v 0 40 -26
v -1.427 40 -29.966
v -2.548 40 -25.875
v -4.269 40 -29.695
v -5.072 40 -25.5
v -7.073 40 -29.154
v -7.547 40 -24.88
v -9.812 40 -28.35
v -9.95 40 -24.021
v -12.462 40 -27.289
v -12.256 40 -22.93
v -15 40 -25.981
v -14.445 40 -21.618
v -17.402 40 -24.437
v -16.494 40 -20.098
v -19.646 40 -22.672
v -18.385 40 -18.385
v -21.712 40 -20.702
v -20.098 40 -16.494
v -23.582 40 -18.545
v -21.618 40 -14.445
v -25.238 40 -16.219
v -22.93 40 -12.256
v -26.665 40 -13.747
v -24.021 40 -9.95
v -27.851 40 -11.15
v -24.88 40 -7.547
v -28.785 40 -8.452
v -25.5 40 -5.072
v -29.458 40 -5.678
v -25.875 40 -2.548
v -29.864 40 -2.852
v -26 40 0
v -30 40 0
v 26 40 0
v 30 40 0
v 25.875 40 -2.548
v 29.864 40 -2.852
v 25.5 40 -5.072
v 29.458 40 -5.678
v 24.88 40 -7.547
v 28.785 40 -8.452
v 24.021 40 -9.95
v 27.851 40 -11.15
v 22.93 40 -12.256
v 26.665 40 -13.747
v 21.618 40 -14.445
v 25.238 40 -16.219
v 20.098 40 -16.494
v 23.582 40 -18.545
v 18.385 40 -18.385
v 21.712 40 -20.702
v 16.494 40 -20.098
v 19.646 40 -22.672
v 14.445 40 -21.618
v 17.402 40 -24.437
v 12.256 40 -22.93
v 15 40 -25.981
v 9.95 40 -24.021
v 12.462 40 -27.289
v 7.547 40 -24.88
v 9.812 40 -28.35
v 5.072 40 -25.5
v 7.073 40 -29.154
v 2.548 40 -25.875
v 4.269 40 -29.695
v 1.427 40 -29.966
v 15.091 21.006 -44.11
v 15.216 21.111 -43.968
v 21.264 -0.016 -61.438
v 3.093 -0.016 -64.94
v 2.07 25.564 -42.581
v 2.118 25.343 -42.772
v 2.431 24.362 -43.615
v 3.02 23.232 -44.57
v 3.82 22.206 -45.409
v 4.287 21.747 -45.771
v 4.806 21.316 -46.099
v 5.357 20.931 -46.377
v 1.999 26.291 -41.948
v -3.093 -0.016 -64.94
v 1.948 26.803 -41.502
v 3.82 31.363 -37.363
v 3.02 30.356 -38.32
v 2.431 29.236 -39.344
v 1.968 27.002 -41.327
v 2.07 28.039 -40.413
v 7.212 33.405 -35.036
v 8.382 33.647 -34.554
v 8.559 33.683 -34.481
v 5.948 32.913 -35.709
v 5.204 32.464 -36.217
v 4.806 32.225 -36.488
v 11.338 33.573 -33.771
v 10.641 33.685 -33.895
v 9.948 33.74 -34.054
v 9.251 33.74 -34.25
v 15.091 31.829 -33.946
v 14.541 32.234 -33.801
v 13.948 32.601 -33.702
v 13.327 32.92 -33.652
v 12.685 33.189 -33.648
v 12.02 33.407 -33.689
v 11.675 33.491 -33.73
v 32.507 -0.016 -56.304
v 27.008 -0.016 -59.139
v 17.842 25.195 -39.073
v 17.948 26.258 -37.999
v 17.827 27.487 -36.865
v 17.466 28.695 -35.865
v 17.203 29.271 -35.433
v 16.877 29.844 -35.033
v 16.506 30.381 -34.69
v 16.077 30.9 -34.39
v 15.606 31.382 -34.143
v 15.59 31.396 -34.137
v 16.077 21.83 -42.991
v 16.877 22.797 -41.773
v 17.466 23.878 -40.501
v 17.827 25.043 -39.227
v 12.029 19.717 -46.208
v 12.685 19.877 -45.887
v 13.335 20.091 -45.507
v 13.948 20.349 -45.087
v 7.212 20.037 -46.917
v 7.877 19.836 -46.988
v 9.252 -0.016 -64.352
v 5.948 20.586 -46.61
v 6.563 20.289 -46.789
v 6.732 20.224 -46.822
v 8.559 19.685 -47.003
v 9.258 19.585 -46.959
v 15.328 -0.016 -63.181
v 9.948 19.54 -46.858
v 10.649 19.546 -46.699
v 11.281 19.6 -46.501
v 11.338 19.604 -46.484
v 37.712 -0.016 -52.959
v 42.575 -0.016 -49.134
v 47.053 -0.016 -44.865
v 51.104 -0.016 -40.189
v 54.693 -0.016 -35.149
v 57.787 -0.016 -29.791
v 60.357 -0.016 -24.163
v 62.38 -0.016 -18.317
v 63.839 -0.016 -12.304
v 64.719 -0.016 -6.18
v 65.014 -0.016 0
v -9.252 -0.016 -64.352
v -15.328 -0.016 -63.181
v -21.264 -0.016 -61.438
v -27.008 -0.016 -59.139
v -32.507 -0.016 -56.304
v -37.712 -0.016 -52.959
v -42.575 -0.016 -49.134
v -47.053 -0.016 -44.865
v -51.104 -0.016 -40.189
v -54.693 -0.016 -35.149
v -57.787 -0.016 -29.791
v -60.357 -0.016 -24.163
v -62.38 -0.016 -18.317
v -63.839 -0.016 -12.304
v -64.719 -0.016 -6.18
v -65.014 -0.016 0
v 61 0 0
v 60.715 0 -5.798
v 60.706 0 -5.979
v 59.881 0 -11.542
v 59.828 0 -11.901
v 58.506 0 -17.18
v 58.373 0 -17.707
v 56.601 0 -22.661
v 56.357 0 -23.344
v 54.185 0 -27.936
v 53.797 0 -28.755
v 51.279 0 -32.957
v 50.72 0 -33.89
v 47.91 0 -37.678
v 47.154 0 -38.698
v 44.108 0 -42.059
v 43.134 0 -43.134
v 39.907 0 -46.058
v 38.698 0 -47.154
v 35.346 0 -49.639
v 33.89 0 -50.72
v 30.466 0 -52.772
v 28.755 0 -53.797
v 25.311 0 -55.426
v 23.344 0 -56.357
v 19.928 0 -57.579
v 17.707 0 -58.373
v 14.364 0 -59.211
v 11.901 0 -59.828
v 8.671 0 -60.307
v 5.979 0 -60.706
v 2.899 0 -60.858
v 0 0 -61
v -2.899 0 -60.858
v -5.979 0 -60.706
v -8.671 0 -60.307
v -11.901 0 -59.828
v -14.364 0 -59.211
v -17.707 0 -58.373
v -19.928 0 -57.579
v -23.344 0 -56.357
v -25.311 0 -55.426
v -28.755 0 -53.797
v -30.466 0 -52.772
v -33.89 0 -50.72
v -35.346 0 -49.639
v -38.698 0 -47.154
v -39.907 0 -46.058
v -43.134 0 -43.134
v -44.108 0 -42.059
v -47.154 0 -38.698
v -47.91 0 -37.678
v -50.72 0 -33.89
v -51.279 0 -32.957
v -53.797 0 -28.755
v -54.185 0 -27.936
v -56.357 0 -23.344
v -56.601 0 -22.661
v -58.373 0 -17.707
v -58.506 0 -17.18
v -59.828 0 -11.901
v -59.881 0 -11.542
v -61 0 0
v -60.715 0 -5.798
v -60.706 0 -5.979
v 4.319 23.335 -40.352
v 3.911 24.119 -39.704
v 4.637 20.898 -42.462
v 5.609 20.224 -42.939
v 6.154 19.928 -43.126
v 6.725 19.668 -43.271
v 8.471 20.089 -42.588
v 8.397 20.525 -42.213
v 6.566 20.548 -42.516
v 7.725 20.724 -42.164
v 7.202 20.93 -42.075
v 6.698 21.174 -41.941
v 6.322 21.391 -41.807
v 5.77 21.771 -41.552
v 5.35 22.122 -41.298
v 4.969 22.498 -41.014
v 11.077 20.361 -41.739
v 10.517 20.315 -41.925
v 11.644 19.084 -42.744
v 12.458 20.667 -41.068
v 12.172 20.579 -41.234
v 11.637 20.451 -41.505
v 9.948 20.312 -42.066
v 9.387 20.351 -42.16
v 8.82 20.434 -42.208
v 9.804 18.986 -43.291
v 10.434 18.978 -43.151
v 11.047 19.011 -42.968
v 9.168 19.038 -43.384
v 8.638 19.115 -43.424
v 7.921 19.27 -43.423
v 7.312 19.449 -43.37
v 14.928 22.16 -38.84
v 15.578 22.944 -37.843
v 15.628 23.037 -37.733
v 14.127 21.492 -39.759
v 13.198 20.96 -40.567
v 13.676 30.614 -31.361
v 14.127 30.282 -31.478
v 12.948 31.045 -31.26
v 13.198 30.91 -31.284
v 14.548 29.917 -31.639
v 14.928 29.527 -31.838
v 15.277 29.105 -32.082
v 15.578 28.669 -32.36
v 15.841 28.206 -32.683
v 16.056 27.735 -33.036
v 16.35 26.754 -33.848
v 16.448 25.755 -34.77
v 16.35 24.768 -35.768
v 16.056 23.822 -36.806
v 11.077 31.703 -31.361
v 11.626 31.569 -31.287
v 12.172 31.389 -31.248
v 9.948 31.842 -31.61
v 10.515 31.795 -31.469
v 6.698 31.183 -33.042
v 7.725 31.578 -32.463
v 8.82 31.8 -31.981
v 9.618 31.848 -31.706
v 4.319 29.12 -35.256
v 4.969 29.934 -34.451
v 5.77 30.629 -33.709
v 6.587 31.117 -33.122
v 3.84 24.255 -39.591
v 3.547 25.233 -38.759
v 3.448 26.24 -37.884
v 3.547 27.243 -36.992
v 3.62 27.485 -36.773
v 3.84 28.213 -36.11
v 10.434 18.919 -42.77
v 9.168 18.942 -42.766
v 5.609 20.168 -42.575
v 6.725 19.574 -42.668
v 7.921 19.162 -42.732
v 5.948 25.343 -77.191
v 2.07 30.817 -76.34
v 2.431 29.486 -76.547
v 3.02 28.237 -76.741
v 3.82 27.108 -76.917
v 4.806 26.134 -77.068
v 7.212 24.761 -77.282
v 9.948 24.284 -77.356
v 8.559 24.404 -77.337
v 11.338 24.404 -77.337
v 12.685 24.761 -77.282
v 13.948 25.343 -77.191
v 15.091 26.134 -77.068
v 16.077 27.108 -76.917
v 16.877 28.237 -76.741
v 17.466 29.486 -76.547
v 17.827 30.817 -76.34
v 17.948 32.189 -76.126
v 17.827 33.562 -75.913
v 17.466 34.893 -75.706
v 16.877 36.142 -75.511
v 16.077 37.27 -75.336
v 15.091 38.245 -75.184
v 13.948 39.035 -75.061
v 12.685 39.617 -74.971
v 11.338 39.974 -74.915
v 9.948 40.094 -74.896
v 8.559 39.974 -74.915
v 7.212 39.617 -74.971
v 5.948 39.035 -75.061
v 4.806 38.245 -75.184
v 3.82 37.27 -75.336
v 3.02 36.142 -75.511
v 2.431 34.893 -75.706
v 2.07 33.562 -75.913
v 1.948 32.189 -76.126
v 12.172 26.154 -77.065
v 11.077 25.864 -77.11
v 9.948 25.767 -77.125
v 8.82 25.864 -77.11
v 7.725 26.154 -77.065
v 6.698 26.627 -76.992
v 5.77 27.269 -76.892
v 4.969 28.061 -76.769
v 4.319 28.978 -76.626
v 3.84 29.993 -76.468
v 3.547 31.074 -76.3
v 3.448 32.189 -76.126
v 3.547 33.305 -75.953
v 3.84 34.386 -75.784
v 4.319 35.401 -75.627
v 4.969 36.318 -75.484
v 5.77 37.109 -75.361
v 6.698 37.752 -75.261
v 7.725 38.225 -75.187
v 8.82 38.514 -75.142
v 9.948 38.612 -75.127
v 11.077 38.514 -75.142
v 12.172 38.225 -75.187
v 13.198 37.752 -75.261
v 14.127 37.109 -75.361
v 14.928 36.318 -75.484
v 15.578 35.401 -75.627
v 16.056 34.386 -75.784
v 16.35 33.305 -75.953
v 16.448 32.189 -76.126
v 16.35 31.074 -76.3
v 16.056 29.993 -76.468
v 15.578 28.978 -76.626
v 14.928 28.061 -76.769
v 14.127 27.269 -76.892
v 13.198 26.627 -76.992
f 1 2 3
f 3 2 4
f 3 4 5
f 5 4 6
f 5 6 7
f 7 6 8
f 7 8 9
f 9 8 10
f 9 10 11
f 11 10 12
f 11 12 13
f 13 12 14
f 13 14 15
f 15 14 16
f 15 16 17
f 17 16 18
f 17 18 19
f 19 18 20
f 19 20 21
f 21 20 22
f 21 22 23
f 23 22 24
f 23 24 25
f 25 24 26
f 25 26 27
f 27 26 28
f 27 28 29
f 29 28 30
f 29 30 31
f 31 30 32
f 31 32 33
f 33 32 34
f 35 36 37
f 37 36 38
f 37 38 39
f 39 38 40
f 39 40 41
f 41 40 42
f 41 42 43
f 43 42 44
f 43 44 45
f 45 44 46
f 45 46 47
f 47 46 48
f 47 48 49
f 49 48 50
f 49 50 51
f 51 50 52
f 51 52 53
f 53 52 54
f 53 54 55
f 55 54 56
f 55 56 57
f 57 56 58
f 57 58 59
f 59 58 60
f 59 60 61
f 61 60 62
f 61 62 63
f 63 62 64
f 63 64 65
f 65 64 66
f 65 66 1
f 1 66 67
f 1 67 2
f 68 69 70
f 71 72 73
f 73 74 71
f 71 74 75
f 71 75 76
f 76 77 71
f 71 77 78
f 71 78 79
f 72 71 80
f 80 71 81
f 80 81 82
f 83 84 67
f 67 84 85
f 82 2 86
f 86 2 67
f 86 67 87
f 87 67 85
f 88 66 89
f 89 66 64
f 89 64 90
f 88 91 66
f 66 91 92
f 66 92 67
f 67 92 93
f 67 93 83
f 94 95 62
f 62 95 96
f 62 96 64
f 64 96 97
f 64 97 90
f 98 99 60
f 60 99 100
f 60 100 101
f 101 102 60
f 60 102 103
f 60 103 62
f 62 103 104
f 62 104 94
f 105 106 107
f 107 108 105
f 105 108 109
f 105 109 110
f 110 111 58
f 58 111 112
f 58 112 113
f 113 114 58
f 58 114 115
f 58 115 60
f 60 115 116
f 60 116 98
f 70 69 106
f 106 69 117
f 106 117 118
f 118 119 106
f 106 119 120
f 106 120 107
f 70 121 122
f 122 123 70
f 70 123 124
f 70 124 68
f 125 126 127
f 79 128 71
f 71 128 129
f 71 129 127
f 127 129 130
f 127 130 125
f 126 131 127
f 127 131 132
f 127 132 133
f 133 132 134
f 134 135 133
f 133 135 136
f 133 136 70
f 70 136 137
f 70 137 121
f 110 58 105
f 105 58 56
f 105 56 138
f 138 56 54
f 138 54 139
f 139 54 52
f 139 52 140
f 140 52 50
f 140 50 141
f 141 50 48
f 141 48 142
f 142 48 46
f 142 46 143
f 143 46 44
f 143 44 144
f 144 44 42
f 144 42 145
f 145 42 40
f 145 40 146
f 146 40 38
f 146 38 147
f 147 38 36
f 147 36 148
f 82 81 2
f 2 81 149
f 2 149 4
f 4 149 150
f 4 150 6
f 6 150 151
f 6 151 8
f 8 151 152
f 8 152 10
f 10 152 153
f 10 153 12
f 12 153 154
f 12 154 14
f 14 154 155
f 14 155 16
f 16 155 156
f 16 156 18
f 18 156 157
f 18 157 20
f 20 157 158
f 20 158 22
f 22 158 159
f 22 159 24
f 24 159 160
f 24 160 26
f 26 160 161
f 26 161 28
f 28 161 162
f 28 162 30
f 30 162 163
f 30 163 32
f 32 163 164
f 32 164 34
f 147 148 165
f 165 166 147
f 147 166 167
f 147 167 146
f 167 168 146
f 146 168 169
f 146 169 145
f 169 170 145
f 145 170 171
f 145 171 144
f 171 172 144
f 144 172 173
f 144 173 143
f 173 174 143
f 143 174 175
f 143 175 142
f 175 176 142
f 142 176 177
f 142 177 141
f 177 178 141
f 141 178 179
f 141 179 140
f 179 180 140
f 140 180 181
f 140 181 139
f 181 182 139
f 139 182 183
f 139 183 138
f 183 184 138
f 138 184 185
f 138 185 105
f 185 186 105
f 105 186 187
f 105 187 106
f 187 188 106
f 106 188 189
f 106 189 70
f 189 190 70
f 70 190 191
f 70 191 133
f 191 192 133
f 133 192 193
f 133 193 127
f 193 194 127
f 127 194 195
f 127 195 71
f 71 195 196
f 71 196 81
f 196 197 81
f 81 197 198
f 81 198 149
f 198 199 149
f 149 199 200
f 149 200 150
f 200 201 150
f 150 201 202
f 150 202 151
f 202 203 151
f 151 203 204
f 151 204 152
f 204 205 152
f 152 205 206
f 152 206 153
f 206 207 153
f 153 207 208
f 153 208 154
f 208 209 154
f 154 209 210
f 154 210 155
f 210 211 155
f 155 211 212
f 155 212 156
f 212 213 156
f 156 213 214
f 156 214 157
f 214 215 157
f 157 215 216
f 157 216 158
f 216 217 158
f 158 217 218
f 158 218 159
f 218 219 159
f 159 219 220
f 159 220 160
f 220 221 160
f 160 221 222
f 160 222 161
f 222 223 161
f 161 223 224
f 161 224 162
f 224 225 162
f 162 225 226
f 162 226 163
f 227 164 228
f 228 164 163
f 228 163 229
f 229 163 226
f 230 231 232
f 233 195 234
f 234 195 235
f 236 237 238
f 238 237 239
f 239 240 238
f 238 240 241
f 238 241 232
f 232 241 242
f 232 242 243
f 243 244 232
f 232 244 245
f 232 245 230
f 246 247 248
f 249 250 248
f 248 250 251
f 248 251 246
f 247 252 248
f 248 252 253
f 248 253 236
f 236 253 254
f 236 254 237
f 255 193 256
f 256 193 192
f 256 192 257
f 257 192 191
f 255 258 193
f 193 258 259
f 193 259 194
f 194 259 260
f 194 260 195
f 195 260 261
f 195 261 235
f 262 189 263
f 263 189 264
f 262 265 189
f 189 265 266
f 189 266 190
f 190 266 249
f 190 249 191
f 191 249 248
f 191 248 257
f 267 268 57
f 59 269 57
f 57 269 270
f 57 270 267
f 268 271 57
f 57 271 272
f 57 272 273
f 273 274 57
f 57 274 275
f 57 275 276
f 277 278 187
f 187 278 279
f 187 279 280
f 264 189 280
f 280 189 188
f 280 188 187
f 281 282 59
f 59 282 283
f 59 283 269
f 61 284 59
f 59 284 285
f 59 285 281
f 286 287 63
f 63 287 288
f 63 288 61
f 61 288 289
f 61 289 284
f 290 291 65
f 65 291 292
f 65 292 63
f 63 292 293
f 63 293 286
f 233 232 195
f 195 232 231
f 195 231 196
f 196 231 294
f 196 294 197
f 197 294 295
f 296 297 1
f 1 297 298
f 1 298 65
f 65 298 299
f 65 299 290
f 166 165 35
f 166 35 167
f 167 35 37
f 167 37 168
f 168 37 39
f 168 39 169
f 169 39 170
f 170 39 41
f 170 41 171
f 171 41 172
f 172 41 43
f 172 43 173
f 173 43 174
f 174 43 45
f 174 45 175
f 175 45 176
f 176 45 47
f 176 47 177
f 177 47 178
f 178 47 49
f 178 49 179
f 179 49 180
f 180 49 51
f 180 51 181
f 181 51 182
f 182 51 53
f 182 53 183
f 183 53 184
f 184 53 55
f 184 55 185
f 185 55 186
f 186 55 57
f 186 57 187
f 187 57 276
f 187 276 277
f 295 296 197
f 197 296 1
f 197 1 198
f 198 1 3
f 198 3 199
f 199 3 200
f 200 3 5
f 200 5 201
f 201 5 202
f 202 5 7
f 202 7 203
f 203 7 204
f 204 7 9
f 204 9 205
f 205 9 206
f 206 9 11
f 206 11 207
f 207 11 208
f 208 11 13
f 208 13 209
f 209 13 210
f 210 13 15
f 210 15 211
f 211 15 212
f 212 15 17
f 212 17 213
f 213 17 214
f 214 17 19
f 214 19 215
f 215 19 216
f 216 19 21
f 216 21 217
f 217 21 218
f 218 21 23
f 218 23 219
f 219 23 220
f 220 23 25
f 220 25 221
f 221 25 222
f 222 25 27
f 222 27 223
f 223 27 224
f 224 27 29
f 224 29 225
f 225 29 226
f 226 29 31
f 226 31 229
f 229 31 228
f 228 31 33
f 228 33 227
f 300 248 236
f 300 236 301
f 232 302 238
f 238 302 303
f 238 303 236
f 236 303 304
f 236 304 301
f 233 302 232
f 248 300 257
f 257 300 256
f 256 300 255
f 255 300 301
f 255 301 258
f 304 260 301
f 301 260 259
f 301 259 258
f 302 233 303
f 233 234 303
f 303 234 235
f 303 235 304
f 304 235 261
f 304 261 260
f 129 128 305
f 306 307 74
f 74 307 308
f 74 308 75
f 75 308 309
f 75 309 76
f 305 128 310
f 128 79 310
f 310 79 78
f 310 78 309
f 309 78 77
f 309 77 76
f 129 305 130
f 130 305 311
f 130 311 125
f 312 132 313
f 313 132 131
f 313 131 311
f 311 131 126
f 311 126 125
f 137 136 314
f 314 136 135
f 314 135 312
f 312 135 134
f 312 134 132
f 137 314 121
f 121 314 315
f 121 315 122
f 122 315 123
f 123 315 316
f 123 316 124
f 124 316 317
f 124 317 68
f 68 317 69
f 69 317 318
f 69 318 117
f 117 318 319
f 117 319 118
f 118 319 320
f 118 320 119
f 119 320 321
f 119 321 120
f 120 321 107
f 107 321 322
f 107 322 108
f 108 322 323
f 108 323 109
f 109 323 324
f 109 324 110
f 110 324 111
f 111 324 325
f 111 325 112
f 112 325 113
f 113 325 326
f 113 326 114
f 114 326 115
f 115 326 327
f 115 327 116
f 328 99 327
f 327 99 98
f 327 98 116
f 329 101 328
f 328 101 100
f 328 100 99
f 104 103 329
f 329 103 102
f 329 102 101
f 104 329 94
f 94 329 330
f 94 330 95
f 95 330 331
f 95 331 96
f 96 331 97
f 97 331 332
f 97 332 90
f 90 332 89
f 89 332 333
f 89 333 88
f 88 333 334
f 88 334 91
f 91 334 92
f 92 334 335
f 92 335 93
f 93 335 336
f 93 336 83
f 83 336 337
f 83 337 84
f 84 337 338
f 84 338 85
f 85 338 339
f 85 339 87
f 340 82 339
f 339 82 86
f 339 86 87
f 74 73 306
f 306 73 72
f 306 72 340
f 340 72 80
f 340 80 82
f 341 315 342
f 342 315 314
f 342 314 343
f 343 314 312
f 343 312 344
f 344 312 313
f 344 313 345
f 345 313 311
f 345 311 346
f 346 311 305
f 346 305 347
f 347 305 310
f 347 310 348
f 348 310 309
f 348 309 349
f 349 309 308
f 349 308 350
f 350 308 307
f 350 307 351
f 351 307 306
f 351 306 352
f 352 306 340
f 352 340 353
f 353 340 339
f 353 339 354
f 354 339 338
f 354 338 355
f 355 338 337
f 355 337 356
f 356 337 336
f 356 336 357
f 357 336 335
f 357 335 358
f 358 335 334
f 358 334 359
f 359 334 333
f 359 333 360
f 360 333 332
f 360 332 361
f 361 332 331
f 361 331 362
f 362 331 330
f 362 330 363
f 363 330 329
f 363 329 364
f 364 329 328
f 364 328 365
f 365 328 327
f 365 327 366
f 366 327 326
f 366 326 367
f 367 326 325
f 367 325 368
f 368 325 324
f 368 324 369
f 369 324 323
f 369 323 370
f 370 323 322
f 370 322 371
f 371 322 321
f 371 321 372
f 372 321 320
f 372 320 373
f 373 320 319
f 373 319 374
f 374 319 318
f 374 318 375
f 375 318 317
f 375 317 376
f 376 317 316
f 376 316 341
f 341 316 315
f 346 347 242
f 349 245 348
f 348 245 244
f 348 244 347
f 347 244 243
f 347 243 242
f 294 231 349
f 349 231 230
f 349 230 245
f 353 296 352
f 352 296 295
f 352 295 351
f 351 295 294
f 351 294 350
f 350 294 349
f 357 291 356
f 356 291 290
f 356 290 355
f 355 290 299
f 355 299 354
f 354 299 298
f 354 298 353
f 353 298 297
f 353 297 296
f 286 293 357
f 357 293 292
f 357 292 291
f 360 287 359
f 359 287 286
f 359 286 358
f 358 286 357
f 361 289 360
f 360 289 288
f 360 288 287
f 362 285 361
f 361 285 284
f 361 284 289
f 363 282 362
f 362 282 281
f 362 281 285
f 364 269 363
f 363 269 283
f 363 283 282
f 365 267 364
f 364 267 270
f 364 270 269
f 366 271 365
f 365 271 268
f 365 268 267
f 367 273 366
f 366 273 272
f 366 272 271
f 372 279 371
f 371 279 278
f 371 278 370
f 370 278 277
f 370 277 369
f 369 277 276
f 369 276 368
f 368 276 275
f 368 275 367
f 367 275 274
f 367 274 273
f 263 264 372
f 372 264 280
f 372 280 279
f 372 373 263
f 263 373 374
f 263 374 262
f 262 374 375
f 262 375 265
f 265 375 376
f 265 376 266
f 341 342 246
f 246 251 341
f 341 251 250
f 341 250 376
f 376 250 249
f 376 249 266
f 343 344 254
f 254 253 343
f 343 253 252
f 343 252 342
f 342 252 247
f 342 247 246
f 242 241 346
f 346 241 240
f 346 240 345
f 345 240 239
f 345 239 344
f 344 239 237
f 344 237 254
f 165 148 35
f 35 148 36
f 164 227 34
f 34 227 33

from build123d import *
from build123d.topology import SkipClean

# Parameters (mm, degrees)
REVOLVE1_ANGLE                  = 180
SKETCH3_R                       = 26
CUT_EXTRUDE1_DEPTH              = 10
SKETCH6_R                       = 8
BOSS_EXTRUDE2_DEPTH             = 35
BOSS_EXTRUDE2_DIRECTION_2_REACH = 133.642
CUT_EXTRUDE8_DEPTH              = 35
CUT_EXTRUDE8_DEPTH_BACK         = 10
SKETCH6_6_R                     = 6.5
SKETCH7_W                       = 164.845441074
SKETCH7_H                       = 52.750628287
CUT_EXTRUDE9_DEPTH              = 109.712015004


with BuildPart() as part:
    # Sketch1 → Revolve1 (revolve)
    with BuildSketch(Plane.XY):
        Polygon((26, 40), (61, 0), (65.013813376, -0.015786716), (30, 40), align=None)
    revolve1 = revolve(axis=Axis((0, 40, 0), (0, -1, 0)), revolution_arc=REVOLVE1_ANGLE)

    # Sketch3 → Cut-Extrude1 (cut)
    with BuildSketch(Plane(origin=(0, 32.212389381, 36.814159292), x_dir=(1, 0, 0), z_dir=(0, 0.6585046078685183, 0.7525766947068778))):
        with Locations((0, -20.352106134)):
            Circle(SKETCH3_R)
    extrude(amount=-CUT_EXTRUDE1_DEPTH, mode=Mode.SUBTRACT)

    # Mirror1: Revolve1 across plane
    add(revolve1.mirror(Plane.XY))

    # Sketch6 → Boss-Extrude2 (add)
    with BuildSketch(Plane(origin=(9.948450871, 26.808829171, -41.542274476), x_dir=(-1, 0, 0), z_dir=(0, 0.15372802298718932, -0.9881131994606945))):
        with Locations(Location((0, 0, 0), (0, 0, 90))):
            Circle(SKETCH6_R)
    extrude(amount=BOSS_EXTRUDE2_DEPTH)

    # Boss-Extrude2 direction 2: up to this cone (the profile starts outside it)
    with SkipClean():  # the faces are left unmerged after this step: merging them gives an invalid solid
        boss_extrude2_direction_2_end = Plane(origin=(0, 26.808829, 0), z_dir=(0, -1, 0)).offset(-47.476884286) * Cone(1e-06, 195.266014922, 223.161158911, align=(Align.CENTER, Align.CENTER, Align.MIN), mode=Mode.PRIVATE)
        # Sketch6 → Boss-Extrude2 direction 2 (add, up to the surface)
        with BuildSketch(Plane(origin=(9.948450871, 26.808829171, -41.542274476), x_dir=(-1, 0, 0), z_dir=(0, 0.15372802298718932, -0.9881131994606945)), mode=Mode.PRIVATE) as boss_extrude2_direction_2_sk1:
            with Locations(Location((0, 0, 0), (0, 0, 90))):
                Circle(SKETCH6_R)
        boss_extrude2_direction_2_tool1 = extrude(boss_extrude2_direction_2_sk1.sketch, amount=-BOSS_EXTRUDE2_DIRECTION_2_REACH, mode=Mode.PRIVATE) - boss_extrude2_direction_2_end
        add(boss_extrude2_direction_2_tool1.solids().sort_by_distance((9.948451, 26.808829, -41.542274))[0])

    # Sketch6<6> → Cut-Extrude8 (cut, two sides: drawn at the far end of the back side and taken through both)
    with BuildSketch(Plane(origin=(9.948450871, 26.808829171, -41.542274476), x_dir=(-1, 0, 0), z_dir=(0, 0.15372802298718932, -0.9881131994606945)).offset(-CUT_EXTRUDE8_DEPTH_BACK)):
        with Locations(Location((0, 0, 0), (0, 0, 90))):
            Circle(SKETCH6_6_R)
    extrude(amount=CUT_EXTRUDE8_DEPTH + CUT_EXTRUDE8_DEPTH_BACK, mode=Mode.SUBTRACT)

    # Sketch7 → Cut-Extrude9 (cut, through all)
    with BuildSketch(Plane.XY):
        with Locations((11.116613387, 15.529637373)):
            Rectangle(SKETCH7_W, SKETCH7_H)
    extrude(amount=CUT_EXTRUDE9_DEPTH, mode=Mode.SUBTRACT)


solid = part.part
